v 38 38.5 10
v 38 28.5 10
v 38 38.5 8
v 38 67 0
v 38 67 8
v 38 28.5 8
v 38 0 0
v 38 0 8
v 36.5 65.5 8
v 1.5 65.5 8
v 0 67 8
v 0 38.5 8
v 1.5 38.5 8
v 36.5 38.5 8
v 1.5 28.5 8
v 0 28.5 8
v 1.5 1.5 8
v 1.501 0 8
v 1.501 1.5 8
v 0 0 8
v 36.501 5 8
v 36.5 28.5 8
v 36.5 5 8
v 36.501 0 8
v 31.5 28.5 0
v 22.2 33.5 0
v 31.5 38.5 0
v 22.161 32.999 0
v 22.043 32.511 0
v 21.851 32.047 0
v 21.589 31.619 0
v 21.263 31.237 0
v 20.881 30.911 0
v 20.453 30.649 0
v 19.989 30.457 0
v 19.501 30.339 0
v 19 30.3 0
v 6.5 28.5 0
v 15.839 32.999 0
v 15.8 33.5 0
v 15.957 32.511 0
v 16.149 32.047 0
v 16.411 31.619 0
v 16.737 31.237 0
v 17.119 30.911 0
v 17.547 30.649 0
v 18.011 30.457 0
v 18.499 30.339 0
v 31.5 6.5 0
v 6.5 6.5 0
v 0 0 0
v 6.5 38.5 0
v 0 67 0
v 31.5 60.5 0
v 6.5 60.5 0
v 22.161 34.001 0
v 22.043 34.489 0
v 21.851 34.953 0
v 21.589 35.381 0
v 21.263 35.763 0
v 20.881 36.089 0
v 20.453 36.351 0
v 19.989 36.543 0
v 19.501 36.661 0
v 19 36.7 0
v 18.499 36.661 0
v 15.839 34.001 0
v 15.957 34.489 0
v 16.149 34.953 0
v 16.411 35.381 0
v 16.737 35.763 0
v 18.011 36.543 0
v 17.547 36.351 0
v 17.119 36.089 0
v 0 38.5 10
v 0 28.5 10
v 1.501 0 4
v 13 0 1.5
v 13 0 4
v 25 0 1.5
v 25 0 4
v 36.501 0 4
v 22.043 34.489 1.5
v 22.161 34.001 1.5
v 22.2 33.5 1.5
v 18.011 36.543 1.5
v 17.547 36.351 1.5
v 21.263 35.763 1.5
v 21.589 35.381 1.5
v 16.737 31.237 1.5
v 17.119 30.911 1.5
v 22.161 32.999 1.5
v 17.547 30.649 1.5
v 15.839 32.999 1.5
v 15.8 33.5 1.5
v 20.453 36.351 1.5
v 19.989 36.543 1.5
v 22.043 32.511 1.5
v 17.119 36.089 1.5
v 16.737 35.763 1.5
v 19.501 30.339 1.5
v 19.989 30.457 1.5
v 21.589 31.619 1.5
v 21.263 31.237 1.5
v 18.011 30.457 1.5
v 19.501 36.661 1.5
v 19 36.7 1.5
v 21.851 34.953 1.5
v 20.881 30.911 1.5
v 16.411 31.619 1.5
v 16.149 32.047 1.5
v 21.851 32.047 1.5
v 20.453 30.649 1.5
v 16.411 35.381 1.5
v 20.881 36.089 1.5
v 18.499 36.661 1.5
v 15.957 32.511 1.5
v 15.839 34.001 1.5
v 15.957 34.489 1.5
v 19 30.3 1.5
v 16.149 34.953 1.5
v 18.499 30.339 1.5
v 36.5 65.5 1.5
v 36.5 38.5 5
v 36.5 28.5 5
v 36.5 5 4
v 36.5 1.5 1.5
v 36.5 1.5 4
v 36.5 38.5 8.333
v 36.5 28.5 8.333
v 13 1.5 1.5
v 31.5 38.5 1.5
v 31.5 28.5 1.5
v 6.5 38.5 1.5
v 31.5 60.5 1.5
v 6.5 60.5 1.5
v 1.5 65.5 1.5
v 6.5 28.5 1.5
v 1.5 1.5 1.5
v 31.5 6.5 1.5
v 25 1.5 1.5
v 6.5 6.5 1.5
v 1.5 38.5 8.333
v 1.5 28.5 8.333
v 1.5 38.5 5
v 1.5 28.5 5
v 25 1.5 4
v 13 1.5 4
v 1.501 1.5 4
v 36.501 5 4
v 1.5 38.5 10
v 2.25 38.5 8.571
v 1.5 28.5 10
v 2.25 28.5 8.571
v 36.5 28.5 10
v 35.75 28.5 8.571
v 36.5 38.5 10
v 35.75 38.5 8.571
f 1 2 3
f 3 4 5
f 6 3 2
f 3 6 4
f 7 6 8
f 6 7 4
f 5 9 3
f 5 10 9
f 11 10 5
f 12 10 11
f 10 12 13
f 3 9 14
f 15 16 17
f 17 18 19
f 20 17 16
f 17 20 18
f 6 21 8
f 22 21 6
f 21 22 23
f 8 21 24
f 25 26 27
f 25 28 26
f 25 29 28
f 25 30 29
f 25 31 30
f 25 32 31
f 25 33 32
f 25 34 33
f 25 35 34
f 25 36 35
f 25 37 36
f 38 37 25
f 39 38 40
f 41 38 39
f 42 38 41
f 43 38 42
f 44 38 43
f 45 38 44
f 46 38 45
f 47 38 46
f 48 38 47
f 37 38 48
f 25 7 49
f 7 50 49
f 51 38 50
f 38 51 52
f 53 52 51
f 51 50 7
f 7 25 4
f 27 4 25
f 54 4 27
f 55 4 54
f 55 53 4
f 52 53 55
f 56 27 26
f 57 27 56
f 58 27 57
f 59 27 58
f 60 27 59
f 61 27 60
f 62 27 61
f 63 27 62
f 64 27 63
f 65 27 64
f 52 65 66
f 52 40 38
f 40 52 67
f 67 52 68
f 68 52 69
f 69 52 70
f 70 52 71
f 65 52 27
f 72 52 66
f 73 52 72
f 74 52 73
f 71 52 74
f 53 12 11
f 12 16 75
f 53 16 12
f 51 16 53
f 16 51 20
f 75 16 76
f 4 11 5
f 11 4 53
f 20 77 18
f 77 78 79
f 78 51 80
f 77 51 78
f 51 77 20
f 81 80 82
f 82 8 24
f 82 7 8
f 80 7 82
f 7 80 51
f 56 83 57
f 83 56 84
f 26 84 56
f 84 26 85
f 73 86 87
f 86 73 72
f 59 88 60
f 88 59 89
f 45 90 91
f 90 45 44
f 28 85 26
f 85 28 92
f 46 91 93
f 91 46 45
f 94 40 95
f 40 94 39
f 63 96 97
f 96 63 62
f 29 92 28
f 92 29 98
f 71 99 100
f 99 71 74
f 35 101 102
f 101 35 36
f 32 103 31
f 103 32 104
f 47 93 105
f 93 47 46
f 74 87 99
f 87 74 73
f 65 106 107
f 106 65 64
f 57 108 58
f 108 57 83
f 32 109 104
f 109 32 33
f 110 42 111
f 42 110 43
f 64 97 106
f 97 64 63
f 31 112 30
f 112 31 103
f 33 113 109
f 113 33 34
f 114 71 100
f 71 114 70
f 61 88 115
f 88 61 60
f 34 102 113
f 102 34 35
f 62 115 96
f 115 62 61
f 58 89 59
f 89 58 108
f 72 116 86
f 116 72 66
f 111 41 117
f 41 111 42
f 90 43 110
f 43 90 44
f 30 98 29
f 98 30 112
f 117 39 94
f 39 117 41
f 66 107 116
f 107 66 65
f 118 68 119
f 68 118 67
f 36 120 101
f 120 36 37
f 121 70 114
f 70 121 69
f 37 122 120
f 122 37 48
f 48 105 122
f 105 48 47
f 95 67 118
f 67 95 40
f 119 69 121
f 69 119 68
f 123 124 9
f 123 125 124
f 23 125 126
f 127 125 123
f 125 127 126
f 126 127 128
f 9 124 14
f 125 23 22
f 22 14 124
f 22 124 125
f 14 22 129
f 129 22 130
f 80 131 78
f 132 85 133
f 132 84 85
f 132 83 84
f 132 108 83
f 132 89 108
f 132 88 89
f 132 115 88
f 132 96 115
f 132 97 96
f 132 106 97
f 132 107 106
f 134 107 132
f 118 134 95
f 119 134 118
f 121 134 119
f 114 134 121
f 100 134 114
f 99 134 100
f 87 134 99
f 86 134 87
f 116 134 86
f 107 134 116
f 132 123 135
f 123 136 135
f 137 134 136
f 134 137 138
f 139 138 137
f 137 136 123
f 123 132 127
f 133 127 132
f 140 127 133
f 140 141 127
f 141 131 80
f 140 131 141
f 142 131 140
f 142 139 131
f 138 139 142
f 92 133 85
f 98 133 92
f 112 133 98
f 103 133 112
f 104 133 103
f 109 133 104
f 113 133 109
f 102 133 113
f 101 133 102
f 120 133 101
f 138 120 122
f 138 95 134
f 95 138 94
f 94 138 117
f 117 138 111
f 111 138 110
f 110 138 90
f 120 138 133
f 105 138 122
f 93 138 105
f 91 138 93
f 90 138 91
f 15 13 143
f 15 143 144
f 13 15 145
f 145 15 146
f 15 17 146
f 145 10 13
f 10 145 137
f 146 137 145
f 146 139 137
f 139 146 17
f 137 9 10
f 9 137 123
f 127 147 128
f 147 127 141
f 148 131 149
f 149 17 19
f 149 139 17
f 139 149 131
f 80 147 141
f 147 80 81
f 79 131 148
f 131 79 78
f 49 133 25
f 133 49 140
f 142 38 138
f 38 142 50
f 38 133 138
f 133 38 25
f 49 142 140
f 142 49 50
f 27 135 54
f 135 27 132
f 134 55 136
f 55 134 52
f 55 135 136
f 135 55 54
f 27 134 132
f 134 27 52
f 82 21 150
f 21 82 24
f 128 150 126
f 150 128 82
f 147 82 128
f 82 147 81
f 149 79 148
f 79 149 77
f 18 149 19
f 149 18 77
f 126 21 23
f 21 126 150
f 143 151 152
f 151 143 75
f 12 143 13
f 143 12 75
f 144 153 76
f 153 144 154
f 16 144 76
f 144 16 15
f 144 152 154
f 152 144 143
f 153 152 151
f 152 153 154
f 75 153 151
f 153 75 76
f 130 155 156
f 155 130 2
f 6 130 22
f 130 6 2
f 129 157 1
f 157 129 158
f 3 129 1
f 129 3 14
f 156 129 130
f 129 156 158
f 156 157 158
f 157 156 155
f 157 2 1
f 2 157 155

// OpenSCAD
/* A box to attach a battery to a robot body */

/* battery is 1200 mAh PKCELL LP503562 */
length = 64;
width = 35;
height = 5;
wall_thickness = 1.5;
overlap = 0.001;
wires_width = 12;

post_radius = 3 + 0.2; // matches backbone + lip (see center_post.scad)

// upper tabs
tab_width = 10;



module battery_tab(w=tab_width, h=height, t=wall_thickness) {
  linear_extrude(w)
    polygon(points=[
      [0, 0],
      [0 + h, 0],
      [0 + h, t],
      [0 + h / 3, t],
      [0 + h / 3.5, t * 1.5],
      [0, t]
    ]);
}

union() {
  difference () {
    /* outer shell has room for battery, plus wall_thickness on each side */
    cube([width + wall_thickness*2, length + wall_thickness*2, height + wall_thickness*2]);

    translate([
      width/2 + wall_thickness,
      length/2 + wall_thickness,
      -wall_thickness / 2
    ])
      cylinder(h=wall_thickness + 1, r=post_radius, $fn=40);

    /* inner cutout is simple */
    translate([wall_thickness, wall_thickness, wall_thickness])
      cube([width, length, height + wall_thickness*2]);

    /* to center the notch, the x coordinate is found by taking the total width,
       subtracting the wires_width, and dividing by 2
    */
    translate([
      (width + wall_thickness*2 - wires_width) / 2,
      -overlap,
      wall_thickness
    ])
      /* the actual notch is width of wires_width */
      cube([wires_width, wall_thickness + overlap*2, height + wall_thickness + overlap]);

    /* additional openings reduce material & enhance airflow */
    translate([5 + wall_thickness, 5 + wall_thickness, -wall_thickness/2])
      cube([width - 10, length / 2 - 10, wall_thickness*2]);

    translate([5 + wall_thickness, length/2 + wall_thickness + 5, -wall_thickness/2])
      cube([width - 10, length / 2 - 10, wall_thickness*2]);

    /* lower the wall on one side to make battery insertion easier */
    translate([wall_thickness + overlap, 0, wall_thickness + height / 2])
      cube([width, 5, height]);
  }

  /* slanted tabs to (hopefully) hold battery */
  translate([0, (length + tab_width) / 2 + wall_thickness, height * 2])
    rotate([0, 90, -90])
      battery_tab();

  translate([width + wall_thickness * 2, (length - tab_width) / 2 + wall_thickness, height * 2])
    rotate([0, 90, 90])
      battery_tab();
  }
